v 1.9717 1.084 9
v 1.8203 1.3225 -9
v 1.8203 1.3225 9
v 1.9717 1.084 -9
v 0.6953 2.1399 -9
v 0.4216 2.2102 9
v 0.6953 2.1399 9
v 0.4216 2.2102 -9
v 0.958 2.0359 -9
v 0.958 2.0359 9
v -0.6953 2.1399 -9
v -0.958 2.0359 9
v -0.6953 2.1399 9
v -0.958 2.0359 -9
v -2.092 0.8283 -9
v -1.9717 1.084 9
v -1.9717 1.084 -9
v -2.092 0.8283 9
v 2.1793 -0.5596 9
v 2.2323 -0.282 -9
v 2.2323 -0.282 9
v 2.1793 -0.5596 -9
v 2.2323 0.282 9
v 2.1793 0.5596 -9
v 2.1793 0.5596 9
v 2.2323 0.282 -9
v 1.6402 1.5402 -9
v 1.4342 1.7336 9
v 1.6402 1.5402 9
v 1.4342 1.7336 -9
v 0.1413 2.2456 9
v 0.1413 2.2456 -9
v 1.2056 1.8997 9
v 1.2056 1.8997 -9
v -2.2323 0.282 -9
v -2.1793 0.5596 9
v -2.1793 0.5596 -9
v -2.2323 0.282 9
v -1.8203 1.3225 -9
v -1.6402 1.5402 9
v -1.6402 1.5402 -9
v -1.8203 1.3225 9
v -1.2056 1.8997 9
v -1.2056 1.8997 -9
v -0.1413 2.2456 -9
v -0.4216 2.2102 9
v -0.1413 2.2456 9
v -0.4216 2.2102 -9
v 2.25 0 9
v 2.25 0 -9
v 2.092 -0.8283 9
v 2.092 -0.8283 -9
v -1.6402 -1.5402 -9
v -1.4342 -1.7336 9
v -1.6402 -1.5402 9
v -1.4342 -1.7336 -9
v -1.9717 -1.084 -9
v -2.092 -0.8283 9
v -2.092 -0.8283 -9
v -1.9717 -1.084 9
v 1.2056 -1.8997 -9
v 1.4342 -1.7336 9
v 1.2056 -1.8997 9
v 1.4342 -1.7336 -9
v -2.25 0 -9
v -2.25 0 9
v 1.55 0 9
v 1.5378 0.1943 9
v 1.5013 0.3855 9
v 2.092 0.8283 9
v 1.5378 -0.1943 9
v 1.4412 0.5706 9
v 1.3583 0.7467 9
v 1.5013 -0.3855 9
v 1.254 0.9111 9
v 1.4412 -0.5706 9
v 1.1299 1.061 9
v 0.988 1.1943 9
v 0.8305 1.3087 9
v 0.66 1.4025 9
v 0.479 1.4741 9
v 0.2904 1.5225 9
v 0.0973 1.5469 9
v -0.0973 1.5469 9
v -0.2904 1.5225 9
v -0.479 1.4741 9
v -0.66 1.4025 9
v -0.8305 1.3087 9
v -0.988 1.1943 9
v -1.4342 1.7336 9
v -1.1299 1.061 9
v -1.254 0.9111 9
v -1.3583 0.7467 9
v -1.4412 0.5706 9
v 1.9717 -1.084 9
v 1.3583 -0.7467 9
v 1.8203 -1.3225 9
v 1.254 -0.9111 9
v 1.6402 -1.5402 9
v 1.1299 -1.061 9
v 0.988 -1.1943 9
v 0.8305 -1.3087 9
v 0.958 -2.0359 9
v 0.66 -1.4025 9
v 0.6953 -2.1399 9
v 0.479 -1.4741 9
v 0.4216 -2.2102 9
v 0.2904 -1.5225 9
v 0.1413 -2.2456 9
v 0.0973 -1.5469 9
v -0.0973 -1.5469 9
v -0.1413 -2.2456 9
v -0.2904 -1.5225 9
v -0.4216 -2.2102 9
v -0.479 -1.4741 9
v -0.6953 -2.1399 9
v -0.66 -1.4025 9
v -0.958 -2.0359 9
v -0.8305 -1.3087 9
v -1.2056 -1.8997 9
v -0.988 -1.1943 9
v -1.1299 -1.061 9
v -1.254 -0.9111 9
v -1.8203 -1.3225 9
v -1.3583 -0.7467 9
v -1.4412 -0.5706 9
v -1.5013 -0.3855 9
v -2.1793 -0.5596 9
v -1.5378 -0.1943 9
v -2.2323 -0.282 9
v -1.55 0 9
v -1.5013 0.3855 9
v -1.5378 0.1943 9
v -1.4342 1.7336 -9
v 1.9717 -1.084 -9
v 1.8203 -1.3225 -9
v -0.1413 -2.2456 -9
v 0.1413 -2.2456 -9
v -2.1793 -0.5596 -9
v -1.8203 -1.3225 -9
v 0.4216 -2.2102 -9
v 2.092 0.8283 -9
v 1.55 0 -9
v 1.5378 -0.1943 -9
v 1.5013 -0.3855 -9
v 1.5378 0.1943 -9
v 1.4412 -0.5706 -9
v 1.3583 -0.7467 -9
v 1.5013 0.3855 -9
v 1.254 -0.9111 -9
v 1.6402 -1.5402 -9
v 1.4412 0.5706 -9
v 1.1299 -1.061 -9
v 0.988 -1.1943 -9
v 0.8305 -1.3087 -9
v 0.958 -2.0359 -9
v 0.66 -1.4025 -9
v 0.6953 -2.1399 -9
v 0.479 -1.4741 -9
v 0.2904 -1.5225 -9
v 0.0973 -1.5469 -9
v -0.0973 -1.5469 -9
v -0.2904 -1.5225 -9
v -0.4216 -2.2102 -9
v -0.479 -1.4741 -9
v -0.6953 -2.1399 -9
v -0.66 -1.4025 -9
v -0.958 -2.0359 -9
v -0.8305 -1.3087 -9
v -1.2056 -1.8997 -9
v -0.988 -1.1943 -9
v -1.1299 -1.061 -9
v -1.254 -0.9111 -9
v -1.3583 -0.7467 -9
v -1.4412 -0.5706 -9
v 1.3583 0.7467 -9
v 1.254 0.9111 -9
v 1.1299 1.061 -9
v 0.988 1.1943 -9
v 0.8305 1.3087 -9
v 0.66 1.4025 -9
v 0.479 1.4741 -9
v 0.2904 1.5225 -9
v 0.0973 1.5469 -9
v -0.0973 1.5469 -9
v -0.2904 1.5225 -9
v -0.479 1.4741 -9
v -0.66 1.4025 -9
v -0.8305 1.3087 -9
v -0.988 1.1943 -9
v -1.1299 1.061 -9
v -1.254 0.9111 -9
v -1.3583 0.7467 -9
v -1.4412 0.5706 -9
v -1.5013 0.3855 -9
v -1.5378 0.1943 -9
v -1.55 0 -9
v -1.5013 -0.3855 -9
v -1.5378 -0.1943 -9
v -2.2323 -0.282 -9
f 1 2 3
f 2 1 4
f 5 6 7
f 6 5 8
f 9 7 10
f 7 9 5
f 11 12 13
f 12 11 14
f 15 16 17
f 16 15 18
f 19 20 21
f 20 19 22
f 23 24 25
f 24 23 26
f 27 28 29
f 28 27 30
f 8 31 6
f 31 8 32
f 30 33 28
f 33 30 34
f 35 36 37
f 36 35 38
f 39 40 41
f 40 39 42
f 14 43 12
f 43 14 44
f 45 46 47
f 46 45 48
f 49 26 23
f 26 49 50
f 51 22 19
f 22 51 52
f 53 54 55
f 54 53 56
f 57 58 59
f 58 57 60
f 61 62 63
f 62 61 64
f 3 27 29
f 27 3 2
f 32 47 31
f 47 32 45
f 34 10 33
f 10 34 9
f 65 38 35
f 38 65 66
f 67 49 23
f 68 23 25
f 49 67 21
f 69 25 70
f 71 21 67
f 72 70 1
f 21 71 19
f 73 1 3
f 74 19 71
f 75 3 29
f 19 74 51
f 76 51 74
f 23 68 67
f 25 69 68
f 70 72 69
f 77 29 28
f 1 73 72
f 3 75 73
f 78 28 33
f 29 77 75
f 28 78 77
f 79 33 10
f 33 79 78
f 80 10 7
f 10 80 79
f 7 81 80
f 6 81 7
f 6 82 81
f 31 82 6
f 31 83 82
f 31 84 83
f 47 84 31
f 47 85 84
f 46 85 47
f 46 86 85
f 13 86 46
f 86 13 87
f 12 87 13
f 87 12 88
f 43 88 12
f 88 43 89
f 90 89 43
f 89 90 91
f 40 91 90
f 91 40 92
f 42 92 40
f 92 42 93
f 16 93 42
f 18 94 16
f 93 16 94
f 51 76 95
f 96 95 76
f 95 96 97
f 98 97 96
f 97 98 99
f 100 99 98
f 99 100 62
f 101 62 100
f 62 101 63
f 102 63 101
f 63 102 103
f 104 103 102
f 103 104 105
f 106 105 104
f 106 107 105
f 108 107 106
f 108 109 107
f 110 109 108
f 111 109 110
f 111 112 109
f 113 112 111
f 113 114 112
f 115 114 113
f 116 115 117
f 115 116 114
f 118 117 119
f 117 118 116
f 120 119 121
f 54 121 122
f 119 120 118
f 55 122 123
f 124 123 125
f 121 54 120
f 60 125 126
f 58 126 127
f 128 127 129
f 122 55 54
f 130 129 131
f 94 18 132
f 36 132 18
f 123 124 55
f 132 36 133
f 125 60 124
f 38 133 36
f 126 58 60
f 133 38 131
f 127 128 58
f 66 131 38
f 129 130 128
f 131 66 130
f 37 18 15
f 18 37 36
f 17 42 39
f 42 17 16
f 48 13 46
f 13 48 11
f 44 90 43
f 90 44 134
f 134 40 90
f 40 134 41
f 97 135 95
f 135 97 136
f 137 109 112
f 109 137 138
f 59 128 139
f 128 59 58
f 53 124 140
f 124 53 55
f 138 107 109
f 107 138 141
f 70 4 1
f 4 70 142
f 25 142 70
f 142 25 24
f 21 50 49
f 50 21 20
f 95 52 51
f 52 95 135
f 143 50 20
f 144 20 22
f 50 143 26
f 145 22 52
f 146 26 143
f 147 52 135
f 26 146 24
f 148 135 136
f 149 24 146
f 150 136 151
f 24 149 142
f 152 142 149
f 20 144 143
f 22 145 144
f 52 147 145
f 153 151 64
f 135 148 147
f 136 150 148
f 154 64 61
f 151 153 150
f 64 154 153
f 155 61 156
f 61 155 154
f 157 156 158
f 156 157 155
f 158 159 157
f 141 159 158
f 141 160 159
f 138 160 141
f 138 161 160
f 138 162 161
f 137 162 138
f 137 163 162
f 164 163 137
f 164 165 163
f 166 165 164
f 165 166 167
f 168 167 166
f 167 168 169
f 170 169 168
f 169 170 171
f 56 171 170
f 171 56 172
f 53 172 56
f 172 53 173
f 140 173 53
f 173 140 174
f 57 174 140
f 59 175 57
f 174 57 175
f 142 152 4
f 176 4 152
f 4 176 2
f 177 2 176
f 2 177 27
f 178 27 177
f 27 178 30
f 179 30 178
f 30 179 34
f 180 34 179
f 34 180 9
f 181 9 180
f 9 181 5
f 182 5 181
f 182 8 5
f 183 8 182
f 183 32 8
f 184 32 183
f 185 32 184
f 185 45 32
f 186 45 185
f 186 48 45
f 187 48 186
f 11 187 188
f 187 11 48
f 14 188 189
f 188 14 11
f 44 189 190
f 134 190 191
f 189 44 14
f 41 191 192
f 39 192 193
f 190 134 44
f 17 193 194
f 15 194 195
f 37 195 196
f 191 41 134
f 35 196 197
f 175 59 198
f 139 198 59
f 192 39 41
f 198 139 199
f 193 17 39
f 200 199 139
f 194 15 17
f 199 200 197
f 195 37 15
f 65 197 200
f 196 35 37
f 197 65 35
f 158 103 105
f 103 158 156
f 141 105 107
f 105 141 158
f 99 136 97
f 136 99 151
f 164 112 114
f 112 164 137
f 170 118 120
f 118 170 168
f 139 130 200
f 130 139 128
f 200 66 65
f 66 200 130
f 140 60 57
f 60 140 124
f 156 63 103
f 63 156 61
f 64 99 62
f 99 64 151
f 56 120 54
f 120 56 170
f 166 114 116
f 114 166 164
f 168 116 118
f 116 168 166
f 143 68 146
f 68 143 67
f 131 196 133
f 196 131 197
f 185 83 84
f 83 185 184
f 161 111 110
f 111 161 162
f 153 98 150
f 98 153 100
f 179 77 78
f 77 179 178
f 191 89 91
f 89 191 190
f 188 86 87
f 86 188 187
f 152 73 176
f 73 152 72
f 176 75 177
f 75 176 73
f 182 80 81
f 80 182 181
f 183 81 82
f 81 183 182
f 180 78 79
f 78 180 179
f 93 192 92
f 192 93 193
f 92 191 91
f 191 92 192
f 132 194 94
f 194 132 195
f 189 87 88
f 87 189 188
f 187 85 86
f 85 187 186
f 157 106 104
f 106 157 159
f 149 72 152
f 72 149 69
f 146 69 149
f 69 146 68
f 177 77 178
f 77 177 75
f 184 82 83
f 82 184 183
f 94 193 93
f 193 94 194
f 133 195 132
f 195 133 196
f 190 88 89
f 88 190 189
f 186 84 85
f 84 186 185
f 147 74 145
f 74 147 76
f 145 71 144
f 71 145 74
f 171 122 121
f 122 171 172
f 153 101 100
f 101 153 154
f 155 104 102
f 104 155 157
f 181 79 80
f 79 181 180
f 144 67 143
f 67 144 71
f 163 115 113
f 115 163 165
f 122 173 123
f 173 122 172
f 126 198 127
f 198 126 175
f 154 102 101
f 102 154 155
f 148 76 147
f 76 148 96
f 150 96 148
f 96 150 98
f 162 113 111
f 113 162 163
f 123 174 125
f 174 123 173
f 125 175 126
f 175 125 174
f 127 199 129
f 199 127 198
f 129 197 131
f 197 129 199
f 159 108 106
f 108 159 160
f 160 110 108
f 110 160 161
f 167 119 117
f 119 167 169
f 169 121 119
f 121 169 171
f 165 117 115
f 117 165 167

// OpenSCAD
$fn = 50;


difference() {
	union() {
		translate(v = [0, 0, -9.0000000000]) {
			cylinder(h = 18, r = 2.2500000000);
		}
	}
	union() {
		translate(v = [0, 0, -100.0000000000]) {
			cylinder(h = 200, r = 1.5500000000);
		}
	}
}
